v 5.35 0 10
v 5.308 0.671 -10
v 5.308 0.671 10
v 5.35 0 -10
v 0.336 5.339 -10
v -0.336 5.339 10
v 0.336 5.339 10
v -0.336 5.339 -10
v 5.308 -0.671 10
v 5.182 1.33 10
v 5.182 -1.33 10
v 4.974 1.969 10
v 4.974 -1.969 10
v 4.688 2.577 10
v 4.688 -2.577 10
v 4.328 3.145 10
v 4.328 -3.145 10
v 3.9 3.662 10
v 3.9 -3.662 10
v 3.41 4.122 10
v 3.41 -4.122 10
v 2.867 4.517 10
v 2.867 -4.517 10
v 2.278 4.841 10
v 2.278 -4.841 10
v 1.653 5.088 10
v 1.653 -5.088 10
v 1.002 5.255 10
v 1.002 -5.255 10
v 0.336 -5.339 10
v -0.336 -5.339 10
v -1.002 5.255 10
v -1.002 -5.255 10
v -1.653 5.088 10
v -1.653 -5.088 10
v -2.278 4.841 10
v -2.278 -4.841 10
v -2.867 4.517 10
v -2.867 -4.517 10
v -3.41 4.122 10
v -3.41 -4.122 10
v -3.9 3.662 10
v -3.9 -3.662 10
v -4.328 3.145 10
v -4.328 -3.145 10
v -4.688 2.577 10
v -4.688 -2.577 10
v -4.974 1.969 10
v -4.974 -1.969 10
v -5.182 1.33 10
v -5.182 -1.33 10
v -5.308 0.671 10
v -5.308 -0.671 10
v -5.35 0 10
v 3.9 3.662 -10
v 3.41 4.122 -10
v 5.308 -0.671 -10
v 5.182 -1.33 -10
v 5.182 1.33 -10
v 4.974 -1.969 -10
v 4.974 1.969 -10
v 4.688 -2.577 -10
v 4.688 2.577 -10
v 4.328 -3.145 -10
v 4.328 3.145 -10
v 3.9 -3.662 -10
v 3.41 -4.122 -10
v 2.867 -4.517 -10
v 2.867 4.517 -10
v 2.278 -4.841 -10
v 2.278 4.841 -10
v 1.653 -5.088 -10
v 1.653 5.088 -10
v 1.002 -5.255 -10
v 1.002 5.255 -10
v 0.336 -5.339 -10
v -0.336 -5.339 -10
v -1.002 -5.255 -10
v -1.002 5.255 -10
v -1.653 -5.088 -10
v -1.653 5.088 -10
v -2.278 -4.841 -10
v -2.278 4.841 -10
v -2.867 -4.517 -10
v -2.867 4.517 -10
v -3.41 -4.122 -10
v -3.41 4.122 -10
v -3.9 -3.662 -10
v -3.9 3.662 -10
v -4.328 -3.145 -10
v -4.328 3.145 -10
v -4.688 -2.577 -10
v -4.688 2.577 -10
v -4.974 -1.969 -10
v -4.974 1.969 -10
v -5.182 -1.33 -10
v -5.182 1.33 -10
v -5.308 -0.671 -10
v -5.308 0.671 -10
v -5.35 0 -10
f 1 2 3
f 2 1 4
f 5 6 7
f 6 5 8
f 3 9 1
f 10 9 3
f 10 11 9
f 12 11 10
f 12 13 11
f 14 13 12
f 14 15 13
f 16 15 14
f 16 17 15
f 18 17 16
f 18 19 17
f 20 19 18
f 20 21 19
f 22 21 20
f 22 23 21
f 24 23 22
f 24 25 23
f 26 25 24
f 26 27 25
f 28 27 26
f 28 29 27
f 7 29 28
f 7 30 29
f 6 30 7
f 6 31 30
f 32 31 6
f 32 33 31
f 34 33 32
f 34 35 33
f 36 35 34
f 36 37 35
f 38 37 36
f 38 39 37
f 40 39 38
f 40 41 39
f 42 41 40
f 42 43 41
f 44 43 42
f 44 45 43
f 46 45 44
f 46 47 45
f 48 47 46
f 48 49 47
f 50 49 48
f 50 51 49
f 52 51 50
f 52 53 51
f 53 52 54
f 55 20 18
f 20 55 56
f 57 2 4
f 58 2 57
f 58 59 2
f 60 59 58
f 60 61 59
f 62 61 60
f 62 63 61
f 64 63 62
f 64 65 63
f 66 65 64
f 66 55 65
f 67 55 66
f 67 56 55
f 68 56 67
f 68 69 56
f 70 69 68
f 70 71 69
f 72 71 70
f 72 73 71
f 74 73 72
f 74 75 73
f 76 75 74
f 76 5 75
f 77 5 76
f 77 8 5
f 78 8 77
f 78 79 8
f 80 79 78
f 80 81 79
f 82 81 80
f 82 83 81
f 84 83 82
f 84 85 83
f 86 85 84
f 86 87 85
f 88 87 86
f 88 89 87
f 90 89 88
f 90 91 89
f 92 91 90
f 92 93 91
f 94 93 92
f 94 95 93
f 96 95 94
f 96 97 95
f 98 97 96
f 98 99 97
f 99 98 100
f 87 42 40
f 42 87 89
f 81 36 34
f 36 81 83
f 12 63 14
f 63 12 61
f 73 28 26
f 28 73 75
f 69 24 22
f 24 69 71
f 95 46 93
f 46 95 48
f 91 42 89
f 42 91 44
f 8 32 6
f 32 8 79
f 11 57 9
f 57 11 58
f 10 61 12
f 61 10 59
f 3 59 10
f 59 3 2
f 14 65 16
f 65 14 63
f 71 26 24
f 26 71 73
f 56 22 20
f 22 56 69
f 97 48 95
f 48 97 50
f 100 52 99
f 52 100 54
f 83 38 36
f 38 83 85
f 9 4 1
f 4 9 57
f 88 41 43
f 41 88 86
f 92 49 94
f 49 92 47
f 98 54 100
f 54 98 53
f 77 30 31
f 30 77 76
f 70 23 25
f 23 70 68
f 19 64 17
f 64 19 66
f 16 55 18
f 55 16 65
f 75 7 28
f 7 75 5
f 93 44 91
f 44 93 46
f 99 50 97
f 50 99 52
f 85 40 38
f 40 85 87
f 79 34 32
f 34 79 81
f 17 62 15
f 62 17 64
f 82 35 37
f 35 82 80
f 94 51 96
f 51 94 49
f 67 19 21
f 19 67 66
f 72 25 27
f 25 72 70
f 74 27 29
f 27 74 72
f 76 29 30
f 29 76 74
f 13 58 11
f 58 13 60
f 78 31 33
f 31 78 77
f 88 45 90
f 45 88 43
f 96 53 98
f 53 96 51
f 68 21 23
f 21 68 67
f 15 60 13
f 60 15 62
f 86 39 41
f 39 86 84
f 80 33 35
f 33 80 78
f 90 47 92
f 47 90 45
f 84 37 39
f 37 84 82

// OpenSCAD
$fn = 50;


difference() {
	union() {
		translate(v = [0, 0, -10.0000000000]) {
			cylinder(h = 20, r = 5.3500000000);
		}
	}
	union() {
		translate(v = [0, 0, -100.0000000000]) {
			cylinder(h = 200, r = 0);
		}
	}
}
